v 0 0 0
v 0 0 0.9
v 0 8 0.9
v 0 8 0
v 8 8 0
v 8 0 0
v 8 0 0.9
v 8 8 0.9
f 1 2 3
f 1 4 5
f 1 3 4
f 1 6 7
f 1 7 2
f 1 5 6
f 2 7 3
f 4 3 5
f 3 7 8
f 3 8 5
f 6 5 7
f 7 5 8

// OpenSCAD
/* Warning, this is a very basic generator with a lot of approximation 
input data : [VQFN, 8PW, 8x8x0.9mm, 64, , A, C04-00668A]
generated by com.zoubworld.electronics.cad.model3d.Basic
Date : Sun Feb 15 10:50:49 CET 2026
*/

//body
color("black")
translate([0,0,0])
cube([8.0,8.0,0.9], center=false);
